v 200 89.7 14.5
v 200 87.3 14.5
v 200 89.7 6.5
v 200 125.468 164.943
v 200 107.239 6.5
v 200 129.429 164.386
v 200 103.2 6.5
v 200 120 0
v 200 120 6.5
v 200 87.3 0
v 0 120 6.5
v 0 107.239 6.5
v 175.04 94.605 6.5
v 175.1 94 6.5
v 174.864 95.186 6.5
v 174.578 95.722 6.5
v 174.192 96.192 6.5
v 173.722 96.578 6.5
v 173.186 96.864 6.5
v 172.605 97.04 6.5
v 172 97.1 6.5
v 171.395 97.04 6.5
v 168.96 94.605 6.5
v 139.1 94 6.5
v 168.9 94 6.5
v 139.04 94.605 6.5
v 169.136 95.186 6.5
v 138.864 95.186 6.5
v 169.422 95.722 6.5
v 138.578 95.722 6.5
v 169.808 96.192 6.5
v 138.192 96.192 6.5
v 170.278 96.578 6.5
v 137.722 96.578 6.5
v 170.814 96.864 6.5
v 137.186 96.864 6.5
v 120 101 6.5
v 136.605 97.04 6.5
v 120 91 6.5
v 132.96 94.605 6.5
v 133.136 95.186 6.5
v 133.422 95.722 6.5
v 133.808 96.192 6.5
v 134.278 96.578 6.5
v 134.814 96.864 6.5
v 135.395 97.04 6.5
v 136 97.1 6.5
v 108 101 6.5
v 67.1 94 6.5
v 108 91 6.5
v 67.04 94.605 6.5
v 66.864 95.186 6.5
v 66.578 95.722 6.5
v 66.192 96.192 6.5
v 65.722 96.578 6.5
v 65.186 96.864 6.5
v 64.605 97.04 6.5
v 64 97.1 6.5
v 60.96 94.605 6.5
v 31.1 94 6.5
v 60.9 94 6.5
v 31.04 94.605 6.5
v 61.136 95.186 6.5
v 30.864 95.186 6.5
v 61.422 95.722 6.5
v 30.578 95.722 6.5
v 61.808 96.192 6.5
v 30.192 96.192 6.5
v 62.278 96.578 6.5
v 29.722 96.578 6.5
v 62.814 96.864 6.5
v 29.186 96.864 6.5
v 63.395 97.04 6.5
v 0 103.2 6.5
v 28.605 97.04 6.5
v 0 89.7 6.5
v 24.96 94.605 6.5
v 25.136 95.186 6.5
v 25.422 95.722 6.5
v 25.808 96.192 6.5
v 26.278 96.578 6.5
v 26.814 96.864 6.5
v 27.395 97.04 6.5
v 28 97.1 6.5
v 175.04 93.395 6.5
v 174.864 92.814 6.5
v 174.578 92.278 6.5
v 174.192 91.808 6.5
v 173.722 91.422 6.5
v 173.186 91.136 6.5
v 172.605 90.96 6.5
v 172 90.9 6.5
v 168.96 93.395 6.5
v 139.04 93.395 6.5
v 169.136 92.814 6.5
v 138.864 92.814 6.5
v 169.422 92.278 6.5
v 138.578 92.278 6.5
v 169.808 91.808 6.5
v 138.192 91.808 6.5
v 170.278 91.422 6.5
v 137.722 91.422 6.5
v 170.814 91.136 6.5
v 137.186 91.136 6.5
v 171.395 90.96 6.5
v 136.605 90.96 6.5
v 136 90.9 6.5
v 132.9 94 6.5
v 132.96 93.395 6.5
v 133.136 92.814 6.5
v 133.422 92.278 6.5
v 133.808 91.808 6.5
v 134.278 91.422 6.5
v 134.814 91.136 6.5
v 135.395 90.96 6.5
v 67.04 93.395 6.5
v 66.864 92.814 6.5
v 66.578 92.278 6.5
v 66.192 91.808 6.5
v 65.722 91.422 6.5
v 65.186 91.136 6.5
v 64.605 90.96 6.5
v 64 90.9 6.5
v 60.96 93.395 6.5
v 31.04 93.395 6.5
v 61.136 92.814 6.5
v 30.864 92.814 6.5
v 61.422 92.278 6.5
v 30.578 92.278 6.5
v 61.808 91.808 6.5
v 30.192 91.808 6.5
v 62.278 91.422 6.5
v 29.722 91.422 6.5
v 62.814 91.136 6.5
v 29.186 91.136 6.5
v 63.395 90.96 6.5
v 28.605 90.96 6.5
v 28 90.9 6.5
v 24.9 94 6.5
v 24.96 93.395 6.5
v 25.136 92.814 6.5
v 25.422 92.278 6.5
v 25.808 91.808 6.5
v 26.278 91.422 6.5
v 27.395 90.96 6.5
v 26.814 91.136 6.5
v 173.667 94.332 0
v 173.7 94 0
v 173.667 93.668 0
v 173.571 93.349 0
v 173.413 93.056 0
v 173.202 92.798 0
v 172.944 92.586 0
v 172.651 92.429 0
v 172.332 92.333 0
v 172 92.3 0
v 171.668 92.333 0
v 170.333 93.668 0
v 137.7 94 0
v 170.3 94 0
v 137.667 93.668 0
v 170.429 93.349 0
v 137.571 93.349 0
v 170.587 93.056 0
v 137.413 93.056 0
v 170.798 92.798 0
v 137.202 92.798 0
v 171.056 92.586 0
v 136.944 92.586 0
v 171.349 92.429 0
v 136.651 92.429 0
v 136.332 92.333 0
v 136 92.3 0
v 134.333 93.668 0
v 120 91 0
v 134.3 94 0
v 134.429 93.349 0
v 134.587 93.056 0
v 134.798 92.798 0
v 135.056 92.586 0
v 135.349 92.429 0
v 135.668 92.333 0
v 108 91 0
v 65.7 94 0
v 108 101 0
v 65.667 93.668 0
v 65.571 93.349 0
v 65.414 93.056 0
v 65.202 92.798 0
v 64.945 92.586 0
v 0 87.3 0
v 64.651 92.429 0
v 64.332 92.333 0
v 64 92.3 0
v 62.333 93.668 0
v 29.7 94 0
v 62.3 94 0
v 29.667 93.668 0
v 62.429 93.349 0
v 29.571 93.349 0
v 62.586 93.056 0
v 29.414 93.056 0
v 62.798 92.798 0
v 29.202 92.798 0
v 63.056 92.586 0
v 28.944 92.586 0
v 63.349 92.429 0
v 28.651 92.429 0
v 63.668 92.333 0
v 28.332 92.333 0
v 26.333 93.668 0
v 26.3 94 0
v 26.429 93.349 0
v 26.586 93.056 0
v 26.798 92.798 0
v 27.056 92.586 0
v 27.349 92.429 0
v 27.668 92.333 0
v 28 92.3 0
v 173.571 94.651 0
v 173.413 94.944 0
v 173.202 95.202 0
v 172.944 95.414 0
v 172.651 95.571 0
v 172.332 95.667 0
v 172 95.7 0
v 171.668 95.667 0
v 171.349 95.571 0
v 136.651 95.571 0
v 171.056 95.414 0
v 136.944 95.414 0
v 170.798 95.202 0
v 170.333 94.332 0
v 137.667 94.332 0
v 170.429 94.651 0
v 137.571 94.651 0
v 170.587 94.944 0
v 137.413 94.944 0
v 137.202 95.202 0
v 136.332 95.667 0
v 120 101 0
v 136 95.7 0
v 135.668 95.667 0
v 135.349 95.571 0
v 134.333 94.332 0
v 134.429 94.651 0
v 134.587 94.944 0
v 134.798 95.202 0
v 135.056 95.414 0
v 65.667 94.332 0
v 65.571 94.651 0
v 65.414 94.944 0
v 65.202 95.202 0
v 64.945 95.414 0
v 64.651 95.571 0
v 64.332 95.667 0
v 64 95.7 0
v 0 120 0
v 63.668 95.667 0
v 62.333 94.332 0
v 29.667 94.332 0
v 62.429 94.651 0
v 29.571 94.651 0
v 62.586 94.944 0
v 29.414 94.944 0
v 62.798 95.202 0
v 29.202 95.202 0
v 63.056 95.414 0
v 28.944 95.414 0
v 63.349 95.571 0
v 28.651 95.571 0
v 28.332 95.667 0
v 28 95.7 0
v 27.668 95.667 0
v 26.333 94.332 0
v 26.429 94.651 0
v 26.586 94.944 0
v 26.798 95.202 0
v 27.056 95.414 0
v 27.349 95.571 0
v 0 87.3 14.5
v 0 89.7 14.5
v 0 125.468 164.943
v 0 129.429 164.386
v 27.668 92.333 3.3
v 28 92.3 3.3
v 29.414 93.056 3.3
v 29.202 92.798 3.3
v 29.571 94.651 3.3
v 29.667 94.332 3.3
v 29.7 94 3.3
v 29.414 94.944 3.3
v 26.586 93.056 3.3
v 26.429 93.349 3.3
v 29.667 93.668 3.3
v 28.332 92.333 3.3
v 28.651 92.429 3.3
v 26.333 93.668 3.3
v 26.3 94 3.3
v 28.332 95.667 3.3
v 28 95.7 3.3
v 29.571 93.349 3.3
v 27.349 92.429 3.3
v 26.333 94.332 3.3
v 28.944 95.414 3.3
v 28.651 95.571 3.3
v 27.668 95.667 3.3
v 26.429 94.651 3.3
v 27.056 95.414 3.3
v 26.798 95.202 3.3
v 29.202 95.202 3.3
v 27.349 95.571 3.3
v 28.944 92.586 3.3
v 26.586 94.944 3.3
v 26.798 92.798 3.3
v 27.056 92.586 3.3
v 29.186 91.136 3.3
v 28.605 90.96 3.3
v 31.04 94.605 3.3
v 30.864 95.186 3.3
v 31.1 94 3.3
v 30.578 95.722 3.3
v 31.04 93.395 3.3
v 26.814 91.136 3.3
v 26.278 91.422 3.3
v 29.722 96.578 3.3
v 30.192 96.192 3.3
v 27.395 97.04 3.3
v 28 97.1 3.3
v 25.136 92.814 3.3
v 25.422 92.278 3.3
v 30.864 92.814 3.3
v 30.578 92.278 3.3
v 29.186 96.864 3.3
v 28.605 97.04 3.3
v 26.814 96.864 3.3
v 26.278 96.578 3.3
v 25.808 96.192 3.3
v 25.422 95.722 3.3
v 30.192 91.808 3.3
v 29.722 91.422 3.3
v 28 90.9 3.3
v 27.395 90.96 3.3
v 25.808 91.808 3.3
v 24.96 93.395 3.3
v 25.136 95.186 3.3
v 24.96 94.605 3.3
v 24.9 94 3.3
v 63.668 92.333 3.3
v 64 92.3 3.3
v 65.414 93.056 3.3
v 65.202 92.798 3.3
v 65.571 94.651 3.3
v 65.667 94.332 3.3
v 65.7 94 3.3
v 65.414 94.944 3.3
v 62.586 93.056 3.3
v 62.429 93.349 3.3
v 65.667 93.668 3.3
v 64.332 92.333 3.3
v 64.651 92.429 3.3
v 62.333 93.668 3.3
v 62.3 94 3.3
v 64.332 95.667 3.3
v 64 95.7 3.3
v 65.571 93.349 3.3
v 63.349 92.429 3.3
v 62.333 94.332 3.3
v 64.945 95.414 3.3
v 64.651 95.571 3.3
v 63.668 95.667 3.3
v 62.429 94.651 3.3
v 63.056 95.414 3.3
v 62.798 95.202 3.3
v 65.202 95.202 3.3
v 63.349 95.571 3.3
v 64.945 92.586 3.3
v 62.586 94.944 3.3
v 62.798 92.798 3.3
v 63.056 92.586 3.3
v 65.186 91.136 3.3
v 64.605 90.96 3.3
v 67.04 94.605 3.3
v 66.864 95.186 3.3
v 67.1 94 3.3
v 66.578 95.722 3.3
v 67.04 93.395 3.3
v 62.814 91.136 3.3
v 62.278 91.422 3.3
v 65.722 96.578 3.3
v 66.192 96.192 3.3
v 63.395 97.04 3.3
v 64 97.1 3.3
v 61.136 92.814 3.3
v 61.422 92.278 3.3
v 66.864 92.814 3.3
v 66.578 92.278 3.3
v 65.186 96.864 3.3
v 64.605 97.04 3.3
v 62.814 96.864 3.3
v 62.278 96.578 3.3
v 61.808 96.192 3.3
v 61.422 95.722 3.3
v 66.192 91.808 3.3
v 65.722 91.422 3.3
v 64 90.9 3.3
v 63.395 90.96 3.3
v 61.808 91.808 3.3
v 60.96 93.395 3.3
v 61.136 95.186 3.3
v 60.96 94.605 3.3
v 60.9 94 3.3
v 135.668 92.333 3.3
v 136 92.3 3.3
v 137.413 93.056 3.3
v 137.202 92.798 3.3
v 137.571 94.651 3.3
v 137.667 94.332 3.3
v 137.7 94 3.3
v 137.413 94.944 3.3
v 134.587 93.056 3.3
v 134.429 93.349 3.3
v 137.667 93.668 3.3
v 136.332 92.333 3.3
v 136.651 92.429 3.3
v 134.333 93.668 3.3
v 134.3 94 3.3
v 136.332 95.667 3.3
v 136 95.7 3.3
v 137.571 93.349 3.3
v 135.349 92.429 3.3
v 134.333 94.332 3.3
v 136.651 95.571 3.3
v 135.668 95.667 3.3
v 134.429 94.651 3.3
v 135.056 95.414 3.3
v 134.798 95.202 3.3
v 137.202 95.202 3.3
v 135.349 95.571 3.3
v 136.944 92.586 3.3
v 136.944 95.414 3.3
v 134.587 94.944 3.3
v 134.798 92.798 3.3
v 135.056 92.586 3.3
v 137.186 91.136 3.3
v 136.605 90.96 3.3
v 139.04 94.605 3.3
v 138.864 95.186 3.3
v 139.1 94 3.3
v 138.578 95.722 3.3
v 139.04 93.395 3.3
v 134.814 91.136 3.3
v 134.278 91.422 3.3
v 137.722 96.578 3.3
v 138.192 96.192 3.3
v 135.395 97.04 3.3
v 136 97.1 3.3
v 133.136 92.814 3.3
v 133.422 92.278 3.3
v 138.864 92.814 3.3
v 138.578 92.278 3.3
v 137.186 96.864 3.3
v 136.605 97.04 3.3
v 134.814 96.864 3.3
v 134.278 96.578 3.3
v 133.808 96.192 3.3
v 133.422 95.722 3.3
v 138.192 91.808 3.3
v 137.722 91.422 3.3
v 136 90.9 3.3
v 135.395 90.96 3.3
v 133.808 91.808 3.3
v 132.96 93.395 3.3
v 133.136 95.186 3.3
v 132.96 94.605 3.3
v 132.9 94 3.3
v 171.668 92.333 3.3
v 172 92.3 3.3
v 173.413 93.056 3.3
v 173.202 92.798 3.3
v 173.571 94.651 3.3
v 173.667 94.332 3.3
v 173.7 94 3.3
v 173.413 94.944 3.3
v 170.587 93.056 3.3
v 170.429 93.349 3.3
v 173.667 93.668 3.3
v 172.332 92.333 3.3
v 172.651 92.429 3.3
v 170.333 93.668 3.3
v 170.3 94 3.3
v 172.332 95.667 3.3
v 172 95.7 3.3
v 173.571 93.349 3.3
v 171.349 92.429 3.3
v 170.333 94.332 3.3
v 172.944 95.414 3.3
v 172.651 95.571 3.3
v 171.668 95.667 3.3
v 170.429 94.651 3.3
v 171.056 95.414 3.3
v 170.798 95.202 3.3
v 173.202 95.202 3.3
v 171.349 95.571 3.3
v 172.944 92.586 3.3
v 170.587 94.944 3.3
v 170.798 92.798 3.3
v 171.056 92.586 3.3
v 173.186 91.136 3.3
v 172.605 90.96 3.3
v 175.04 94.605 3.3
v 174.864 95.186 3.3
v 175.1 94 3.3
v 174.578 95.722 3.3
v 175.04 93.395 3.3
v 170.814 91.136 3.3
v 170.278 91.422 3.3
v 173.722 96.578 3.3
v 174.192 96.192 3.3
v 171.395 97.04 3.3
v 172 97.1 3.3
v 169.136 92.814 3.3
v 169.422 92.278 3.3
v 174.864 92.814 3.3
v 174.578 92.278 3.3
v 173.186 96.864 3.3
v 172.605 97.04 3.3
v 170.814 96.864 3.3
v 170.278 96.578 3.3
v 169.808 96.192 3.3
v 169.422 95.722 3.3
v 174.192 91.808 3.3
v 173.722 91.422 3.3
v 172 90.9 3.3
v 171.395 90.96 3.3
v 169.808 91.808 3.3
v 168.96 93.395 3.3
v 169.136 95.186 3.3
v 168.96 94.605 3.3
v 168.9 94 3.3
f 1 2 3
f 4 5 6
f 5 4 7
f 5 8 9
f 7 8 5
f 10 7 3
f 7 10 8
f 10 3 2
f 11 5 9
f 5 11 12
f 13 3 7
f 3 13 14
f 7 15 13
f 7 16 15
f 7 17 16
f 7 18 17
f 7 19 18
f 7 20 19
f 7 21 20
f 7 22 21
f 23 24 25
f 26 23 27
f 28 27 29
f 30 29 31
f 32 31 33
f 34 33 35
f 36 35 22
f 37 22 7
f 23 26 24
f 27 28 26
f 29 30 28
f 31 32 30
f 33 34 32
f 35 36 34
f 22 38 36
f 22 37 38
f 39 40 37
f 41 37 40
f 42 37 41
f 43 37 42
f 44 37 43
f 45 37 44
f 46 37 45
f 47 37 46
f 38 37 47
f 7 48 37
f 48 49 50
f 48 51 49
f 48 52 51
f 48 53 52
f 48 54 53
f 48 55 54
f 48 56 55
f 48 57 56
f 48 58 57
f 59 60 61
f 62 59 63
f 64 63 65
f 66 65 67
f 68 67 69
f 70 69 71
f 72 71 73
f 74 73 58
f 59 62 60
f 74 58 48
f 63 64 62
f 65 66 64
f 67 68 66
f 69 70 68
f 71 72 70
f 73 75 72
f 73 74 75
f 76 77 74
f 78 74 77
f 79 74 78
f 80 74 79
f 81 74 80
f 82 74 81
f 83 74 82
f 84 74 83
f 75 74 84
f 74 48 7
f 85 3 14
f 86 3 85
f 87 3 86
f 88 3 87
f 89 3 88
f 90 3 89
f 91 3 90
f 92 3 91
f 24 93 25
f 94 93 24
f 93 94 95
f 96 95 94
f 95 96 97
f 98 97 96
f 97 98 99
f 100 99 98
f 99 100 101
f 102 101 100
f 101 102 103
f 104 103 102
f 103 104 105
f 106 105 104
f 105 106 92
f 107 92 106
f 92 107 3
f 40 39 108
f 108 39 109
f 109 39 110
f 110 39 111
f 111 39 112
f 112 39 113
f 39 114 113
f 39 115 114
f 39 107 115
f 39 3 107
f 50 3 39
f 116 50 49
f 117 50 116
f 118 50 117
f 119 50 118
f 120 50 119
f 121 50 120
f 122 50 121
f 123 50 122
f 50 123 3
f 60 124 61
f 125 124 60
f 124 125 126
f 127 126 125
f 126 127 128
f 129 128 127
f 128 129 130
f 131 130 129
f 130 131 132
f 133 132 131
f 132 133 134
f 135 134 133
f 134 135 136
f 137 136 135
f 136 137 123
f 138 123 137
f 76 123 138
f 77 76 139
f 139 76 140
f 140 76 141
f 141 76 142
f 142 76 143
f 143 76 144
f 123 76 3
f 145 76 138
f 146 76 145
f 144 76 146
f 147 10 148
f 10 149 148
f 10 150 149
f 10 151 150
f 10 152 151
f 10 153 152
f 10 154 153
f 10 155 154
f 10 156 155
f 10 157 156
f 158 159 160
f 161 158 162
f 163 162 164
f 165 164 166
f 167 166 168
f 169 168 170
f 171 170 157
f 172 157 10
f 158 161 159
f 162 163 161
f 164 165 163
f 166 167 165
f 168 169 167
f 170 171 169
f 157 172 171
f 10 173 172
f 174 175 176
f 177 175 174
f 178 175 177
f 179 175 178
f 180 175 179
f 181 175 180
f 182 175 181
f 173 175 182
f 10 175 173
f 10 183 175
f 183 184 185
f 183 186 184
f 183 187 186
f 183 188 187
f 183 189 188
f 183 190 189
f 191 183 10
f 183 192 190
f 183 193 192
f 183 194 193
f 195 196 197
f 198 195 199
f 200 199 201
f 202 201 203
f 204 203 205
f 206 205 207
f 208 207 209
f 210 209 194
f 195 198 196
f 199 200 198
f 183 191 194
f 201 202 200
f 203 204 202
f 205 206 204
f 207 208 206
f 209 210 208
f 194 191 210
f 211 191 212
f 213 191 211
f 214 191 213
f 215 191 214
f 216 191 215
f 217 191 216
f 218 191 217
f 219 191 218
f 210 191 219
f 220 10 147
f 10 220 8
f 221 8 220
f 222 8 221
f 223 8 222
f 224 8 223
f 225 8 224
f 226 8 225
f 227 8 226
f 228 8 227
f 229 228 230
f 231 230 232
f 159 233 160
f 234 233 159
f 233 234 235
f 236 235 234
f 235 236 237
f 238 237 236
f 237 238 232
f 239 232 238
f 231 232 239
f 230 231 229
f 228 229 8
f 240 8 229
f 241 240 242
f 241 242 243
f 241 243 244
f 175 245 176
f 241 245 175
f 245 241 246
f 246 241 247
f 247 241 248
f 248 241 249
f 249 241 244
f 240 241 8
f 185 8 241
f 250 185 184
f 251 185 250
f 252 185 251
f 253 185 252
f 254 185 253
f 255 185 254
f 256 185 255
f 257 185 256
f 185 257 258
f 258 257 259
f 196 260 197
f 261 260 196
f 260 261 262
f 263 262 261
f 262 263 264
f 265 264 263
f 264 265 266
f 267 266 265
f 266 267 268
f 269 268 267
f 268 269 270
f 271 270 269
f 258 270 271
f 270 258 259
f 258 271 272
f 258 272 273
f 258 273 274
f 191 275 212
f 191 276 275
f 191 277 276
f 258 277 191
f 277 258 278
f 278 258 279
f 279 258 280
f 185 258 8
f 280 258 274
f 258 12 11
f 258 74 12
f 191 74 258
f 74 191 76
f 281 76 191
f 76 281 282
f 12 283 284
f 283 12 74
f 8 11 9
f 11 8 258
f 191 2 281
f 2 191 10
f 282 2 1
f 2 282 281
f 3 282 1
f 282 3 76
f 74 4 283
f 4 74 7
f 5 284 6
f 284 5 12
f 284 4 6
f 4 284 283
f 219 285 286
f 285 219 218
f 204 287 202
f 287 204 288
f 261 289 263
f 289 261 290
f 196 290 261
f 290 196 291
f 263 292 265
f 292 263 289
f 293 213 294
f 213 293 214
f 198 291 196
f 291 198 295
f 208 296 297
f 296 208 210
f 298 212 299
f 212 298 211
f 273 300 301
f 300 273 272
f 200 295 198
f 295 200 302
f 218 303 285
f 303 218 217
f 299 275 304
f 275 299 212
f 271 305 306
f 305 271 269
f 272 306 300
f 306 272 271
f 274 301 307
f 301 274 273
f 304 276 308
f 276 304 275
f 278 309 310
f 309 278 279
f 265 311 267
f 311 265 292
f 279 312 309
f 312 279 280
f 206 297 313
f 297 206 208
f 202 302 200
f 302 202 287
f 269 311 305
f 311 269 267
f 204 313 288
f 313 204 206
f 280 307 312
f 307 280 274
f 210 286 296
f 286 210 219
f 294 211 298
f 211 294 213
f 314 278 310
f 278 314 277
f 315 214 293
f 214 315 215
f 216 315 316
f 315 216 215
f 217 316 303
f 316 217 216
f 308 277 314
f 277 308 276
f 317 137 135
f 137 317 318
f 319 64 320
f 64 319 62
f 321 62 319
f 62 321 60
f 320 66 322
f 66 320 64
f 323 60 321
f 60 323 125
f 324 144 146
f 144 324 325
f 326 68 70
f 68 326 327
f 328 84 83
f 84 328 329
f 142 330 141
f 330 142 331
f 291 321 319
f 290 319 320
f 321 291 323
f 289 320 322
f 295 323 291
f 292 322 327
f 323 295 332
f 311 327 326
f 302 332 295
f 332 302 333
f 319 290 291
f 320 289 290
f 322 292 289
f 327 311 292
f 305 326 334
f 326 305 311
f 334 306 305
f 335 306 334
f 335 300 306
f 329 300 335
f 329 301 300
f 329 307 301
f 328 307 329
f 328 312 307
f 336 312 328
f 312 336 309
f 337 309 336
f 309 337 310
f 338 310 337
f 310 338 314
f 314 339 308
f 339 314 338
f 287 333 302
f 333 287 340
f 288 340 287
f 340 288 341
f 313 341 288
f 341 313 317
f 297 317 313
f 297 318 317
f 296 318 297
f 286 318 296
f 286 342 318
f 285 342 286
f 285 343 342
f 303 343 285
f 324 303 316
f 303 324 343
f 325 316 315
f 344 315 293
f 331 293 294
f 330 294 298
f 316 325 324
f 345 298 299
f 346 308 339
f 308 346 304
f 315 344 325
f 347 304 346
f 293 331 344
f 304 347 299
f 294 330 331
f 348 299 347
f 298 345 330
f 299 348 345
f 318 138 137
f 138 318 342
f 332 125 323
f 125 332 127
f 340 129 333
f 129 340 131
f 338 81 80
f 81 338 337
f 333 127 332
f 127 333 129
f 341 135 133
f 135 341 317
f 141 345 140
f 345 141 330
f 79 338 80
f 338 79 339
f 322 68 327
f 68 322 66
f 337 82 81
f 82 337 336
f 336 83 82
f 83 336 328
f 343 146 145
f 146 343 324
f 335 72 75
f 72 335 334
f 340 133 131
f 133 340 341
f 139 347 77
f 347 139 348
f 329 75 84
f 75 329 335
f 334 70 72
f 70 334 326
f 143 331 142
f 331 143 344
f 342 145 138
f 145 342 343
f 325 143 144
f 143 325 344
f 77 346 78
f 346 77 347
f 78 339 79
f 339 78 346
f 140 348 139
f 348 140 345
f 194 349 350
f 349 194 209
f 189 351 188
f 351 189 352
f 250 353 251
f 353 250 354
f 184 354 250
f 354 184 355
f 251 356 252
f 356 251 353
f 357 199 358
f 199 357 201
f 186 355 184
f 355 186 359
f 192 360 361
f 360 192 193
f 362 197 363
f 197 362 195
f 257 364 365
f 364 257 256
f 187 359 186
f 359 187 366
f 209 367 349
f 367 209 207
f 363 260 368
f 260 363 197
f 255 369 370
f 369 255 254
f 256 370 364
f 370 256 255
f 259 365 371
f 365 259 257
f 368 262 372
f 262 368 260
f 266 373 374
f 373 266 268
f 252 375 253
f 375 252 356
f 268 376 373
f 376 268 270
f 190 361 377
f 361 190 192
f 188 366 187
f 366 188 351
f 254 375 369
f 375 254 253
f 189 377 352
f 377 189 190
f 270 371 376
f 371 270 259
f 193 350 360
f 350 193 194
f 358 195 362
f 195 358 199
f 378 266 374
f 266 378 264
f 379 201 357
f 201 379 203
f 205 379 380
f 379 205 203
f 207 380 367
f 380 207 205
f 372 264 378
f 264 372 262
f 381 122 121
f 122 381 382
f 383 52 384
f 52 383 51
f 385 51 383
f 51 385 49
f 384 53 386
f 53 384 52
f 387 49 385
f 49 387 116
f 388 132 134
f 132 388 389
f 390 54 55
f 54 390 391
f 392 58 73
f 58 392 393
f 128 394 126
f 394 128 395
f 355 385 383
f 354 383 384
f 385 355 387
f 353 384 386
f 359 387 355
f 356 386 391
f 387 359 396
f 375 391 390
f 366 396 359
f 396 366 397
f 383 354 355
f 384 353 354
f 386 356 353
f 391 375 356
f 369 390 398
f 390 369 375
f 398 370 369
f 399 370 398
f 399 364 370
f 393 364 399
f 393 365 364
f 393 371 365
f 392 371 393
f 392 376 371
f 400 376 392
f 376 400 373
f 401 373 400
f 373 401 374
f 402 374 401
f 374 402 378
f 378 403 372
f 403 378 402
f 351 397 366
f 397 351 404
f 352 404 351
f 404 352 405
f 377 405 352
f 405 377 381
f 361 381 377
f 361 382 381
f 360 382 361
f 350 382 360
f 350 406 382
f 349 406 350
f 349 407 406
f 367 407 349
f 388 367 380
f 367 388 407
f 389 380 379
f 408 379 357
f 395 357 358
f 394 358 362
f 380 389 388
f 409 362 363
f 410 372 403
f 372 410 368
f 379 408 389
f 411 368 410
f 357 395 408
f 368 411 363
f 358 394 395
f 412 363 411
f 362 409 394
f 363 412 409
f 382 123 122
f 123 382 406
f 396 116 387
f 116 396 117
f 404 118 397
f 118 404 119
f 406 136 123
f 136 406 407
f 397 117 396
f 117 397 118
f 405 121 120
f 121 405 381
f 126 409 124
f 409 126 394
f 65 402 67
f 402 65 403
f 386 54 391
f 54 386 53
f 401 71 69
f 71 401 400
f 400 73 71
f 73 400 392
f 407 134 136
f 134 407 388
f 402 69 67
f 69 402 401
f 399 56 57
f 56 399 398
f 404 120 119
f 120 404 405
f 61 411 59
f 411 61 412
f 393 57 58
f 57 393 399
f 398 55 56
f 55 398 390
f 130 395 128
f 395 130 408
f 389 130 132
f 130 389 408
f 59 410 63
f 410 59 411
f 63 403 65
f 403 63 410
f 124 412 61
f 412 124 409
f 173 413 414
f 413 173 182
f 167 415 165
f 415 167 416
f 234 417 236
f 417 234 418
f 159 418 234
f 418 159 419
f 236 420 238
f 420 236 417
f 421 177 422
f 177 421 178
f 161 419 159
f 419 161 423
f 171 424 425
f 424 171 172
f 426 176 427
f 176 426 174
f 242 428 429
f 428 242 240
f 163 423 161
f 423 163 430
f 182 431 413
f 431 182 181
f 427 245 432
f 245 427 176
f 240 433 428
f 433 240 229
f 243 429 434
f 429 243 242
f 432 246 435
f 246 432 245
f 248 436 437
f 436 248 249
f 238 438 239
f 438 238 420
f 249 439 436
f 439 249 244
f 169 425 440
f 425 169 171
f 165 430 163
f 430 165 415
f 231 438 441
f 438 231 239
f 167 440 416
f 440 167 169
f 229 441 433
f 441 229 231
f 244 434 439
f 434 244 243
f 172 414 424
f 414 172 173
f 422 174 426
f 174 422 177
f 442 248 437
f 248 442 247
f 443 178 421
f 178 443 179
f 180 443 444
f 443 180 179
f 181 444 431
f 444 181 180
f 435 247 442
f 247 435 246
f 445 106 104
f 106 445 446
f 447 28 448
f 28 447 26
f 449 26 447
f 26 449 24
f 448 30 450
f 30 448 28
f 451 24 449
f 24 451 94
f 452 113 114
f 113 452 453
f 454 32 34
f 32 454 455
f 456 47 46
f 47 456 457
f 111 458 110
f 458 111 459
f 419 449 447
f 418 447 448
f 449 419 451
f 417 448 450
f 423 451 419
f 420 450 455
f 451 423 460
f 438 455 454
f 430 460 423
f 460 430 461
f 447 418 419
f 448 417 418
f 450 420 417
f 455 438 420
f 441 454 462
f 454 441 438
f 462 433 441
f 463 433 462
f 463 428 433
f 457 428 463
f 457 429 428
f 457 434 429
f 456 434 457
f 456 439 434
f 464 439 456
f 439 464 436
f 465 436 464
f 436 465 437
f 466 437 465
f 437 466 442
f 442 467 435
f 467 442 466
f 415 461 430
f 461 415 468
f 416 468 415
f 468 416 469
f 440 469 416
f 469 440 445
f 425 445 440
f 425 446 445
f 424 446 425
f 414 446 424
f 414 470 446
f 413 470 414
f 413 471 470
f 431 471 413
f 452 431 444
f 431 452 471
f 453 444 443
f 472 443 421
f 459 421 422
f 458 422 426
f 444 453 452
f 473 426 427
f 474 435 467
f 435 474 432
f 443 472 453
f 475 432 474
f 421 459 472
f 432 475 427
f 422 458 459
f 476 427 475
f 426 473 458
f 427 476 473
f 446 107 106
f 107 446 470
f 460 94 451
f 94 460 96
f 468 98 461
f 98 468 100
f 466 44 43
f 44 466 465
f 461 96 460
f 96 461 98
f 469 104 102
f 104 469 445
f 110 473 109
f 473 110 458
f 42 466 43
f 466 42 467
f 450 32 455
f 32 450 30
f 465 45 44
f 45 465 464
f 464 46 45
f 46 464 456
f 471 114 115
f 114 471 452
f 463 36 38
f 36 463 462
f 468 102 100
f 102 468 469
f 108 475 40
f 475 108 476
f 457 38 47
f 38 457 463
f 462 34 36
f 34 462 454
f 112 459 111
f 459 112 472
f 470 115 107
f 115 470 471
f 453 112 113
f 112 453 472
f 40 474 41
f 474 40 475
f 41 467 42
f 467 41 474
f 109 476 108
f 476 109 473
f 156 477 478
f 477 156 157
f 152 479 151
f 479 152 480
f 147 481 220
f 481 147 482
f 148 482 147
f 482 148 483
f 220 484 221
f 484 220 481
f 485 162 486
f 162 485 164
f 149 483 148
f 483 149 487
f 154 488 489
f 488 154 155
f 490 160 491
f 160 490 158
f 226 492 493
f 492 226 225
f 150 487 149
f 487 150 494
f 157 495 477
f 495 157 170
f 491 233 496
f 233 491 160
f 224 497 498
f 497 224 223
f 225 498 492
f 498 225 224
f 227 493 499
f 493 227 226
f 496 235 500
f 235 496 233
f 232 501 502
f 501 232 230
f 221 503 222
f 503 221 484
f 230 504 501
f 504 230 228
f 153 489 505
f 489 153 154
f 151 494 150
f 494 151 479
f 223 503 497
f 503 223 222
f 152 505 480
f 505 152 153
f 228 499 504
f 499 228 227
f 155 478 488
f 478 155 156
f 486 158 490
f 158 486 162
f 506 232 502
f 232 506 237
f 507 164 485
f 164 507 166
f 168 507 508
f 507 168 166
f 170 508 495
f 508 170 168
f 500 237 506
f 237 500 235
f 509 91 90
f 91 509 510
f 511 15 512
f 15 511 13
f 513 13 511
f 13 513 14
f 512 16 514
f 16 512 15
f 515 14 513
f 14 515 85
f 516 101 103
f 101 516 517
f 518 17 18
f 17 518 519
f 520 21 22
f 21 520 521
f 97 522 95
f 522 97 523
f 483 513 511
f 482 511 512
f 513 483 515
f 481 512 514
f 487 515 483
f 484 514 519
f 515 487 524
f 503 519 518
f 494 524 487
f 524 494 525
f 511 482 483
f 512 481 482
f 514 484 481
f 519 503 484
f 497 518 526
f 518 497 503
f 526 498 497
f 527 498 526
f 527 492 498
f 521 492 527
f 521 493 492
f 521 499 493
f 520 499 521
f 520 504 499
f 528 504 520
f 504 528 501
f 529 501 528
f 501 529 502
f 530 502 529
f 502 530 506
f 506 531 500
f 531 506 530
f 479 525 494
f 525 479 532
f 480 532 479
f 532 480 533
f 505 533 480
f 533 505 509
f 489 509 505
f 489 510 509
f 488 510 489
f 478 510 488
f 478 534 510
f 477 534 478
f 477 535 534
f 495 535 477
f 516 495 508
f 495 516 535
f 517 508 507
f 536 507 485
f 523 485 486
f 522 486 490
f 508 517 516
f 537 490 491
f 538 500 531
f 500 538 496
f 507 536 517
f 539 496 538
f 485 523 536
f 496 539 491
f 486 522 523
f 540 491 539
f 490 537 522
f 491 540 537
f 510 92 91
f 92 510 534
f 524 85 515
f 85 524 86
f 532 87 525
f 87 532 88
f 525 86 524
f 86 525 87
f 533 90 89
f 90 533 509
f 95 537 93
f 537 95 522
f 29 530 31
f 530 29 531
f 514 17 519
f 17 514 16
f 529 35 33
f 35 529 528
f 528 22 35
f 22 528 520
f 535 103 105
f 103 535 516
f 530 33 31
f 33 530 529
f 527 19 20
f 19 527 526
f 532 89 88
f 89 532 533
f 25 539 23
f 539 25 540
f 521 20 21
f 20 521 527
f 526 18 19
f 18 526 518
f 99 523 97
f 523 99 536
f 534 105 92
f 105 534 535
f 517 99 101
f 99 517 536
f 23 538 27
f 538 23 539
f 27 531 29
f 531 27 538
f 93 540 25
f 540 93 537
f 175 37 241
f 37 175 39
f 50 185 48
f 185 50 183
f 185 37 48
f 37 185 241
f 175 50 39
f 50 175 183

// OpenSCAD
// Switch2Select simple iPad stand
// Copyright (C) 2026 Switch2Select contributors
// SPDX-License-Identifier: CERN-OHL-W-2.0
//
// A second stand for the iPad. The full rail, card panel, and rear feet stay
// in enclosure/stand.scad. This one is a cradle and two side stops.
//
// The back leans 8 degrees from vertical. That is enough for a bare iPad to
// rest against the back. The center of a 13 inch iPad (215.5 mm tall,
// 5.1 mm thick) stays about 24 mm in front of the rear edge of the 140 mm
// box, so the cradle alone carries it.
//
// The lip is the low wall on the student side of the shelf. The clear gap
// from that wall back to the sloping back is `channel` (13.5 mm). A bare iPad
// from 5.1 mm to 7.5 mm thick sits on the shelf and leans on the back. The
// lip stops the bottom edge if it slides toward the student. About 2 mm of
// shelf remains behind the lid's cable port, under that bottom edge.
//
// Four M3 holes already in the lid (switch2select.scad) bolt the cradle down.
// Heads sit in counterbores so they stay below the shelf. The ring-cable port
// stays open through the shelf.
//
// Each side stop slides onto the lip from the end. The fin is the outer end
// and faces the iPad. The long body reaches past the box so a 13 inch iPad
// (281.6 mm wide) can be snugged up. An M3×6 screw through the boss presses
// the student face of the lip and keeps the stop from sliding.
//
// Print the cradle with the base on the bed. The back rises about 8 degrees
// off vertical, and the lip is a vertical wall, so it does not need supports.
// Print each stop as exported: the flat cap is on the bed and the slot faces up.

part = "cradle"; // [cradle, stop, assembly]

tilt = 8;
box_x = 200;
box_y = 140;
box_z = 55;
// Lid skin thickness in switch2select.scad. The cradle screws pass through it.
lid_t = 2.4;

base_t = 6.5;
back_t = 4;
back_len = 160;
base_y1 = 120;

// Speaker grill is centered at y = 70 and is 32 mm front to back, so the
// partner edge of the grill is y = 86. The lip stays behind that edge.
grill_y1 = 86;
grill_x0 = 79;
grill_x1 = 121;
lip_y0 = 87.3;
lip_t = 2.4;
lip_h = 8;
channel = 13.5;

// Same centers as switch2select.scad and stand.scad.
stand_bolt_y = 94;
stand_bolt_xs = [28, 64, 136, 172];
m3_clear = 3.4;
m3_pilot = 2.8;
// Socket-head and pan-head M3 screws are about 5.5 mm to 5.6 mm across.
cbore_d = 6.2;
cbore_h = 3.2;
cradle_screw = 10;

ring_port_x = 114;
ring_port_y = 96;
ring_port_w = 12;
ring_port_h = 10;

// Side stop. The fin is the outboard end. The screw boss is near the inboard end.
stop_len = 74;
fin_t = 3.2;
fin_depth = 9;
top_t = 4;
bead = 1.8;
bead_h = 3.2;
clear_y = 0.4;
clear_z = 0.35;
boss_t = 5;
boss_extra = 6;
stop_screw = 6;
screw_x = 62;
gap = 0.8;

lip_y1 = lip_y0 + lip_t;
y_back = lip_y1 + channel;
lip_top = base_t + lip_h;
y_lip_partner = 12;
y_lip_student = y_lip_partner + lip_t;

function com_y(h, t) = y_back + (h / 2) * sin(tilt) - (t / 2) * cos(tilt);
function top_y(h) = y_back + h * sin(tilt);
function back_print_z() = base_t + back_len * cos(tilt);
function fin_x_for(w) = (box_x - w) / 2 - gap;
function screw_world(w) = fin_x_for(w) - fin_t + screw_x;

module m3_hole(h, d) {
  cylinder(h = h, d = d, $fn = 32);
}

module cradle() {
  difference() {
    union() {
      translate([0, lip_y0, 0])
        cube([box_x, base_y1 - lip_y0, base_t]);
      translate([0, lip_y0, base_t])
        cube([box_x, lip_t, lip_h]);
      translate([0, y_back, base_t])
        rotate([90 - tilt, 0, 0])
          translate([0, -2, -back_t])
            cube([box_x, back_len + 2, back_t]);
    }
    translate([
      ring_port_x - ring_port_w / 2,
      ring_port_y - ring_port_h / 2,
      -1
    ])
      cube([ring_port_w, ring_port_h, base_t + 2]);
    for (x = stand_bolt_xs) {
      translate([x, stand_bolt_y, -1])
        m3_hole(base_t + 2, m3_clear);
      translate([x, stand_bolt_y, base_t - cbore_h])
        m3_hole(cbore_h + 1, cbore_d);
    }
  }
}

// Slot faces up. The flat cap is z = 0. The fin is the low-x end.
// The slot runs the whole length, so the lip can slide through. The fin
// stands only on the partner side of the lip.
module stop_solid() {
  y_bead0 = y_lip_partner - clear_y - bead;
  y_fin0 = y_lip_partner - clear_y - fin_depth;
  y_boss0 = y_lip_student + clear_y;
  y_boss1 = y_boss0 + boss_t;
  z_hole = top_t + lip_h / 2;
  fin_z = top_t + lip_h + clear_z - 0.3;

  difference() {
    union() {
      translate([0, y_bead0, 0])
        cube([stop_len, y_boss0 + 0.4 - y_bead0, top_t]);
      translate([0, y_bead0, 0])
        cube([stop_len, bead + 0.2, top_t + bead_h]);
      translate([0, y_fin0, 0])
        cube([fin_t, y_bead0 + bead + 0.2 - y_fin0, fin_z]);
      translate([screw_x - boss_extra / 2, y_boss0 - 0.2, 0])
        cube([boss_extra, boss_t + 0.2, top_t + lip_h]);
    }
    translate([-0.2, y_lip_partner - clear_y, top_t - 0.05])
      cube([
        stop_len + 1,
        lip_t + 2 * clear_y,
        lip_h + 2
      ]);
    translate([screw_x, y_boss1 + 1, z_hole])
      rotate([90, 0, 0])
        m3_hole(boss_t + clear_y + 2, m3_pilot);
  }
}

// fin_face is the X of the face that meets the iPad.
module stop_at(fin_face) {
  translate([
    fin_face - fin_t,
    lip_y1 + y_lip_partner,
    lip_top + clear_z + top_t
  ])
    rotate([180, 0, 0])
      stop_solid();
}

module mirror_center() {
  translate([box_x / 2, 0, 0])
    mirror([1, 0, 0])
      translate([-box_x / 2, 0, 0])
        children();
}

module stops_for(w) {
  stop_at(fin_x_for(w));
  mirror_center()
    stop_at(fin_x_for(w));
}

module ipad_ghost(w, h, t) {
  translate([0, y_back, base_t])
    rotate([90 - tilt, 0, 0])
      translate([(box_x - w) / 2, 0.45, 0.35])
        cube([w, h, t]);
}

module assembly() {
  color("ivory")
    cradle();
  color("tan")
    stops_for(281.6);
  color([0.2, 0.45, 0.75, 0.35])
    ipad_ghost(281.6, 215.5, 5.1);
  color([0.15, 0.15, 0.15, 0.25])
    translate([0, 0, -box_z])
      cube([box_x, box_y, box_z]);
}

assert(tilt >= 5 && tilt <= 12, "simple stand tilt must stay in the slight range");
assert(channel >= 9 && channel <= 14, "channel must clear a 7.5 mm iPad and still catch it");
assert(lip_h >= 6, "lip must rise in front of the bottom edge");
assert(lip_y0 >= grill_y1 + 1.2, "lip must stay clear of the speaker grill");
assert(
  stand_bolt_y - cbore_d / 2 >= lip_y1 + 1.0,
  "bolt counterbores must stay clear of the lip"
);
assert(y_back >= ring_port_y + ring_port_h / 2 + 0.5, "back must stay clear of the cable port");
assert(com_y(215.5, 5.1) < box_y - 22, "13 inch iPad center must stay over the box");
assert(top_y(215.5) < box_y - 4, "13 inch iPad top must stay over the lid");
assert(back_len >= 134.8, "back must cover an iPad mini");
assert(screw_world(195.4) + boss_extra / 2 + 2 < grill_x0, "mini stop screw must clear the grill");
assert(
  lip_y1 + clear_y + fin_depth < y_back - 2,
  "side fin must stay clear of the back"
);
assert(screw_world(281.6) > 8, "13 inch stop screw must land on the lip");
assert(fin_x_for(281.6) - fin_t + stop_len > 14, "13 inch stop must still grip the lip");
assert(stop_screw - boss_t > clear_y + 0.3, "stop screw must reach the lip");
assert(stop_screw - boss_t < clear_y + 1.2, "stop screw must not pierce the lip");
assert(cradle_screw - (base_t - cbore_h + lid_t) > 3.5, "cradle screw must leave room for a nut");
assert(cbore_d >= 6.0 && cbore_d <= 6.6, "counterbore must fit an M3 socket or pan head");
assert(
  part == "cradle" || part == "stop" || part == "assembly",
  "unknown part"
);

echo(tilt = tilt);
echo(y_back = y_back);
echo(lip_y0 = lip_y0);
echo(lip_y1 = lip_y1);
echo(channel = channel);
echo(com_13 = com_y(215.5, 5.1));
echo(margin_13 = box_y - com_y(215.5, 5.1));
echo(top_13 = top_y(215.5));
echo(back_print_z = back_print_z());
echo(screw_mini = screw_world(195.4));
echo(screw_13 = screw_world(281.6));

if (part == "cradle")
  cradle();
else if (part == "stop")
  stop_solid();
else if (part == "assembly")
  assembly();
